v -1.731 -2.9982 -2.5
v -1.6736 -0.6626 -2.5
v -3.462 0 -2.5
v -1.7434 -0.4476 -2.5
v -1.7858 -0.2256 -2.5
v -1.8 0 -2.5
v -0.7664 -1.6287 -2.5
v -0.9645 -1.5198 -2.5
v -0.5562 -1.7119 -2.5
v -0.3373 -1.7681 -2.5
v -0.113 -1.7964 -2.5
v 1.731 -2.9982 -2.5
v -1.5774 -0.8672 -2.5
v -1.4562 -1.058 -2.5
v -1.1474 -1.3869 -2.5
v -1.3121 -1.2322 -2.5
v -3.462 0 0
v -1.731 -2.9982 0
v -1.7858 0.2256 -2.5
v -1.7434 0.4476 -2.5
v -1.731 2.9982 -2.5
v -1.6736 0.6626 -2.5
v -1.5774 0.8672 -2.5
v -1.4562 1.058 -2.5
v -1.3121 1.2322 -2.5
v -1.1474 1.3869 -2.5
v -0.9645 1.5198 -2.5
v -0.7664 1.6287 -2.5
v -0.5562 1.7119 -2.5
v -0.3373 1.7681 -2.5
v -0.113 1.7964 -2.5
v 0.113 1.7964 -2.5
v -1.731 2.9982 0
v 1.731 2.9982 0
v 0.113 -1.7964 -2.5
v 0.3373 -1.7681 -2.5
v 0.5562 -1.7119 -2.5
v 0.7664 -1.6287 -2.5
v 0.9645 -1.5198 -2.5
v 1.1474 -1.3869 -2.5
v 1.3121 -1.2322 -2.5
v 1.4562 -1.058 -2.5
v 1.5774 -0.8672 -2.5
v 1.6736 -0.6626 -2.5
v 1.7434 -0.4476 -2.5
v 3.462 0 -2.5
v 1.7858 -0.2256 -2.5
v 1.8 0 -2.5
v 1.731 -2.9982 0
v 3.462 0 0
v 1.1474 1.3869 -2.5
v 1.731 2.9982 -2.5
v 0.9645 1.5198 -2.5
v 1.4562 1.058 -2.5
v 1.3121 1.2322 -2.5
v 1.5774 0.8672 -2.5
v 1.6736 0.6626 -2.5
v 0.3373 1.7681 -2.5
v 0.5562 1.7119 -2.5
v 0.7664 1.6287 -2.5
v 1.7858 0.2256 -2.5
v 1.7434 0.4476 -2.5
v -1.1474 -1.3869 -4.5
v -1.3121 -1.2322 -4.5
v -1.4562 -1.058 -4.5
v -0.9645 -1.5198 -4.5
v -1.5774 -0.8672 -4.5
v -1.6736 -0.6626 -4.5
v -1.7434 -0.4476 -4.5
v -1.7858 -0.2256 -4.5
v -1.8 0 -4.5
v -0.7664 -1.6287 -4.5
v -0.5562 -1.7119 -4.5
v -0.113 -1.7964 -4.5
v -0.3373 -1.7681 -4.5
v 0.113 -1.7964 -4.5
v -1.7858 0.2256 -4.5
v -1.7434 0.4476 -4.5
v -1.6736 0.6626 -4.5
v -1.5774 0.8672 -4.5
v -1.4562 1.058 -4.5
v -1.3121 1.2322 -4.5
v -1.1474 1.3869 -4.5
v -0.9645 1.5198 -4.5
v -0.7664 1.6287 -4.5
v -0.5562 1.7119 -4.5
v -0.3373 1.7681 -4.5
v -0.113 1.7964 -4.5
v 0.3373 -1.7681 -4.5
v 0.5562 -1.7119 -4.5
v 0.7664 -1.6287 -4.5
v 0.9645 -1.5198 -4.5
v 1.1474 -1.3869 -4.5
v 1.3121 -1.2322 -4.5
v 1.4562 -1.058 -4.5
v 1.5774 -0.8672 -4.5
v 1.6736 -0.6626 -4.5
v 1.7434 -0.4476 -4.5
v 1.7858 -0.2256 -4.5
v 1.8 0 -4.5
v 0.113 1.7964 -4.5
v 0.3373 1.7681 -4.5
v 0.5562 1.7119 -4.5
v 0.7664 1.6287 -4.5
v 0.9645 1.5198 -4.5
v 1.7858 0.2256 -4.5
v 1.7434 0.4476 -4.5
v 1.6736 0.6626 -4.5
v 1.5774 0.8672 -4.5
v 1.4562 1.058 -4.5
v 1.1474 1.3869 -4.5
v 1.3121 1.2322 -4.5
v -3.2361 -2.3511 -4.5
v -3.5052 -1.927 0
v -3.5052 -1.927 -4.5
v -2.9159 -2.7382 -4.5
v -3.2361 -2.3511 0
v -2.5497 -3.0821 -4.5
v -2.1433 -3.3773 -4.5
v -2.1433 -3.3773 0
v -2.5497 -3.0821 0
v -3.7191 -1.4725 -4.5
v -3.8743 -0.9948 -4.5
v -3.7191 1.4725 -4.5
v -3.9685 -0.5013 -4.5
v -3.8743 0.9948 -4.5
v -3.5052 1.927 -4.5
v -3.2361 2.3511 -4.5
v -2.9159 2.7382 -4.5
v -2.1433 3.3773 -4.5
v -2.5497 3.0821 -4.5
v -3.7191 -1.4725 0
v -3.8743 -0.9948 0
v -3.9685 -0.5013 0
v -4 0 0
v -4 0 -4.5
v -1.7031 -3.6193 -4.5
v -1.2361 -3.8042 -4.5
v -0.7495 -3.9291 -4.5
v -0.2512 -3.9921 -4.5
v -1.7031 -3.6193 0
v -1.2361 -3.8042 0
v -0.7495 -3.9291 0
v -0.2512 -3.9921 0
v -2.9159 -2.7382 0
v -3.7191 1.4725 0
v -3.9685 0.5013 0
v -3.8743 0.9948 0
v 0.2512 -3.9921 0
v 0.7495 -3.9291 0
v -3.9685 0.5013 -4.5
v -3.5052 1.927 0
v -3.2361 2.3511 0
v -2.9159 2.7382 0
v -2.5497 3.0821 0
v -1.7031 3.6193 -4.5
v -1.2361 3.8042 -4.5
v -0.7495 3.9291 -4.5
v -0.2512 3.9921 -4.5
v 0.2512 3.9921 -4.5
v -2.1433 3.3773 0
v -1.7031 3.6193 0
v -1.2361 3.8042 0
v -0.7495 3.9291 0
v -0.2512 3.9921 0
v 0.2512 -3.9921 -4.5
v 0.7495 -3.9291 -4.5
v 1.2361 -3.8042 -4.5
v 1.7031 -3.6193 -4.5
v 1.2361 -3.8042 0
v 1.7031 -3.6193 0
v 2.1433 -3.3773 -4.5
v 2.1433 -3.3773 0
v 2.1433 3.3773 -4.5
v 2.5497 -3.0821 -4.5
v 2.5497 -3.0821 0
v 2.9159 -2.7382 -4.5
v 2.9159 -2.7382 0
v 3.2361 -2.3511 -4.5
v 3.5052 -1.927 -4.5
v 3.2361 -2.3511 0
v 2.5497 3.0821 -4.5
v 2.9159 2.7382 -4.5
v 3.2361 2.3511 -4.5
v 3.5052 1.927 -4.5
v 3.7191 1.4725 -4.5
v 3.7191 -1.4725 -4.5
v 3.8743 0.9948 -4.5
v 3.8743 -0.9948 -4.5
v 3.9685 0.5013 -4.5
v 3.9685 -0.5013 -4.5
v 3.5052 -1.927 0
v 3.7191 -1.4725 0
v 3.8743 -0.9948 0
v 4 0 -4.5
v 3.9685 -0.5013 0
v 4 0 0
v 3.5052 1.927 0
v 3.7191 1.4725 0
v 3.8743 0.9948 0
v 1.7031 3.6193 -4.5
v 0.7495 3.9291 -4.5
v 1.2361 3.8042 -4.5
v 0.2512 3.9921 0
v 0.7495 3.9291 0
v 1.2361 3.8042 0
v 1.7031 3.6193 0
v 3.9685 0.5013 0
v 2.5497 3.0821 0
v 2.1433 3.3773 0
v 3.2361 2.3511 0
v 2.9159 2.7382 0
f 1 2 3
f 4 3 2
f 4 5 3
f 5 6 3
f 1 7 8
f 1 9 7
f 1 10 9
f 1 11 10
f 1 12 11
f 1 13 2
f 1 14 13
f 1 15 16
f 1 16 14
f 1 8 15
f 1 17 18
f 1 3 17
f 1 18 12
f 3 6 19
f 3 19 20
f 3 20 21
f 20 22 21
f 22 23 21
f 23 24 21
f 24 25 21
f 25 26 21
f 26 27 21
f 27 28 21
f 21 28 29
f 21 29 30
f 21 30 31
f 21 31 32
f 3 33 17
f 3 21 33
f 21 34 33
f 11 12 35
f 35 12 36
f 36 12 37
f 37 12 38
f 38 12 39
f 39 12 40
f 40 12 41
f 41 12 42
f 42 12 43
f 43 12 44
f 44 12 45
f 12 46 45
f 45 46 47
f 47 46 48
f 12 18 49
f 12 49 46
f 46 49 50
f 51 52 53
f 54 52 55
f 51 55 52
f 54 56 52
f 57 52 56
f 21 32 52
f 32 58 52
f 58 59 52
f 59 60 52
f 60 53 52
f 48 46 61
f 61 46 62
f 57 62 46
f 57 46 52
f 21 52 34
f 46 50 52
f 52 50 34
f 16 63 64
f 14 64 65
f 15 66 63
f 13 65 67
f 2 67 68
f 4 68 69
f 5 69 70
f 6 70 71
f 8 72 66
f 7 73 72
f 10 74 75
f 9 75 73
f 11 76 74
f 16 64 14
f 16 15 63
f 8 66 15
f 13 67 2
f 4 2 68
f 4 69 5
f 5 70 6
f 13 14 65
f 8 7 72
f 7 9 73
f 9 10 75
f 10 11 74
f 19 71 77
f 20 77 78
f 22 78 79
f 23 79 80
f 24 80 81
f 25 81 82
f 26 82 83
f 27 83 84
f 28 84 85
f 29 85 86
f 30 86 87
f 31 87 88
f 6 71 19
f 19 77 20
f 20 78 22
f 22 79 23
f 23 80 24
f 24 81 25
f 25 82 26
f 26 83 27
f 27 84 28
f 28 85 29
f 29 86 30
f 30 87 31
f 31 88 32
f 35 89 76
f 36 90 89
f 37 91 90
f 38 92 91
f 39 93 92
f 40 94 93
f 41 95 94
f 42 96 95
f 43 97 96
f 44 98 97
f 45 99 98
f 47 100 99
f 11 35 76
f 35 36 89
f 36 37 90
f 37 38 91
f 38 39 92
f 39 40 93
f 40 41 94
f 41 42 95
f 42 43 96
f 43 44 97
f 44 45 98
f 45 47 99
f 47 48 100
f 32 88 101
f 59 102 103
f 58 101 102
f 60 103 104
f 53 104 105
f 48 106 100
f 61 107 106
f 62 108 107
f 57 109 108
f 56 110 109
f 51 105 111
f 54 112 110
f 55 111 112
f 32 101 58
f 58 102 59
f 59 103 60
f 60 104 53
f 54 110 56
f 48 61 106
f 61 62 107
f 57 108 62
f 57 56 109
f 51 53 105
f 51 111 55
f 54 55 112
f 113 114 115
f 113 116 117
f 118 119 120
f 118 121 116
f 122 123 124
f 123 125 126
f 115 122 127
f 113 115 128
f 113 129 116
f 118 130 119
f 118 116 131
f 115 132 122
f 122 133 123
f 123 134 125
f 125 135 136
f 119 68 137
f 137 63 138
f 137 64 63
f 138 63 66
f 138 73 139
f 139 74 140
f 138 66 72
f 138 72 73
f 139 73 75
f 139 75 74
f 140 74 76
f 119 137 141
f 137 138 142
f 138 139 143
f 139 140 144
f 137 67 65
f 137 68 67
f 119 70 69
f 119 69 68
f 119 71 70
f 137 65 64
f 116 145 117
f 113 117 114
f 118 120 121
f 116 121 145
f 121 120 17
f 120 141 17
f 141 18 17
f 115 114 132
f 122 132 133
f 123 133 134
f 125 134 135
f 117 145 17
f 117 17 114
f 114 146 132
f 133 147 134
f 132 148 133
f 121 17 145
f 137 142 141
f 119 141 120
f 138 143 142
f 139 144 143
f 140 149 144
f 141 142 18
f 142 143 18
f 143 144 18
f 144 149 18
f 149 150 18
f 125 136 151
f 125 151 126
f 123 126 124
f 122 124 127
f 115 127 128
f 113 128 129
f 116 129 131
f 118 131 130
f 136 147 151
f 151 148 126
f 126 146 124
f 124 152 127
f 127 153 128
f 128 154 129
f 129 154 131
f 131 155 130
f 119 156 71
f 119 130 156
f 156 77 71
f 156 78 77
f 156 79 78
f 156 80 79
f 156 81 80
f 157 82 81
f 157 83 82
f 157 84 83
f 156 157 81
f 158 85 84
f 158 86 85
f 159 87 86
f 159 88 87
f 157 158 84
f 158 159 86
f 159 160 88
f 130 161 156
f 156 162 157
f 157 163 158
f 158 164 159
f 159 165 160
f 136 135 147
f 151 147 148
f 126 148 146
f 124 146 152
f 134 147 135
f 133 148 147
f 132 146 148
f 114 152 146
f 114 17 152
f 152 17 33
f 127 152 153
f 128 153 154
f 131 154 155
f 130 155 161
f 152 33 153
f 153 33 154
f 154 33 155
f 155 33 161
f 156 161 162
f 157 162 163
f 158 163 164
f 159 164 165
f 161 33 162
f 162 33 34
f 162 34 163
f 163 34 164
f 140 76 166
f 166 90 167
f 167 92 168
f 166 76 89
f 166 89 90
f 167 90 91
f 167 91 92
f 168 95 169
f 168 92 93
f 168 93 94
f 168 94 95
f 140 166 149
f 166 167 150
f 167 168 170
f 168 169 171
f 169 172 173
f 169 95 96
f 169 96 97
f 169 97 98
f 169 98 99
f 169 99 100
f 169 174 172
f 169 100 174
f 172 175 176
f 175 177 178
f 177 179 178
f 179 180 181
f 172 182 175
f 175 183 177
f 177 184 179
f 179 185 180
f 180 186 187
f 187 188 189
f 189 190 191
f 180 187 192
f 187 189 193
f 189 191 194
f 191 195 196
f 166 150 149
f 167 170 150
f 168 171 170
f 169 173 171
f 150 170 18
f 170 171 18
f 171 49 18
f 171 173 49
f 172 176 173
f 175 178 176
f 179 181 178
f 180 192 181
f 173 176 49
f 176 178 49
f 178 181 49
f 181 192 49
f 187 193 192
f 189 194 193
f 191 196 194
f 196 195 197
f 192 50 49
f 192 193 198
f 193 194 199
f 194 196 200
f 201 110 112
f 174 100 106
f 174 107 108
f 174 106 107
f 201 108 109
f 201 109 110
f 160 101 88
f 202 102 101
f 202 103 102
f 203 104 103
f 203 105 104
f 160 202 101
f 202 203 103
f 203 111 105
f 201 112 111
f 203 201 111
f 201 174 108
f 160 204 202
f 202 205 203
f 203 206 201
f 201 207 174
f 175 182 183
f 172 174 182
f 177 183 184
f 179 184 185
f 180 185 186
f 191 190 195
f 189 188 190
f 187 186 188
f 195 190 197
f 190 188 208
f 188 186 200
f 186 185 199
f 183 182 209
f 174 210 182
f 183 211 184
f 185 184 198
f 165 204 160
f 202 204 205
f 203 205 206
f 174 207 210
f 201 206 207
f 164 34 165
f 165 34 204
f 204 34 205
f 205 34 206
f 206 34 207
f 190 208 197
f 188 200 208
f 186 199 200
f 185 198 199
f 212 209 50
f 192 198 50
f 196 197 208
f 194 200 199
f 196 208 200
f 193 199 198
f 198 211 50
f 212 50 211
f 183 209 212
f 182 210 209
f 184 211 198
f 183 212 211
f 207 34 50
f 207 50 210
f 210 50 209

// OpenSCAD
$fn = 50;

difference() {
	union() {
		translate(v = [0, 0, -4.5]) {
			cylinder(h = 4.5, r = 4.0);
		}
	}
	union() {
		translate(v = [0, 0, 0]) {
			rotate(a = [0, 0, 0]) {
				difference() {
					union() {
						translate(v = [0, 0, -2.5]) {
							linear_extrude(height = 2.5) {
								polygon(points = [[3.4619999999999997, 0.0], [1.7310000000000003, 2.9981799479017264], [-1.7309999999999992, 2.9981799479017264], [-3.4619999999999997, 4.2397272186481365e-16], [-1.7310000000000014, -2.998179947901726], [1.7309999999999977, -2.9981799479017277]]);
							}
						}
					}
					union();
				}
			}
		}
		#translate(v = [0, 0, -100.0]) {
			cylinder(h = 200, r = 1.8);
		}
	}
}
